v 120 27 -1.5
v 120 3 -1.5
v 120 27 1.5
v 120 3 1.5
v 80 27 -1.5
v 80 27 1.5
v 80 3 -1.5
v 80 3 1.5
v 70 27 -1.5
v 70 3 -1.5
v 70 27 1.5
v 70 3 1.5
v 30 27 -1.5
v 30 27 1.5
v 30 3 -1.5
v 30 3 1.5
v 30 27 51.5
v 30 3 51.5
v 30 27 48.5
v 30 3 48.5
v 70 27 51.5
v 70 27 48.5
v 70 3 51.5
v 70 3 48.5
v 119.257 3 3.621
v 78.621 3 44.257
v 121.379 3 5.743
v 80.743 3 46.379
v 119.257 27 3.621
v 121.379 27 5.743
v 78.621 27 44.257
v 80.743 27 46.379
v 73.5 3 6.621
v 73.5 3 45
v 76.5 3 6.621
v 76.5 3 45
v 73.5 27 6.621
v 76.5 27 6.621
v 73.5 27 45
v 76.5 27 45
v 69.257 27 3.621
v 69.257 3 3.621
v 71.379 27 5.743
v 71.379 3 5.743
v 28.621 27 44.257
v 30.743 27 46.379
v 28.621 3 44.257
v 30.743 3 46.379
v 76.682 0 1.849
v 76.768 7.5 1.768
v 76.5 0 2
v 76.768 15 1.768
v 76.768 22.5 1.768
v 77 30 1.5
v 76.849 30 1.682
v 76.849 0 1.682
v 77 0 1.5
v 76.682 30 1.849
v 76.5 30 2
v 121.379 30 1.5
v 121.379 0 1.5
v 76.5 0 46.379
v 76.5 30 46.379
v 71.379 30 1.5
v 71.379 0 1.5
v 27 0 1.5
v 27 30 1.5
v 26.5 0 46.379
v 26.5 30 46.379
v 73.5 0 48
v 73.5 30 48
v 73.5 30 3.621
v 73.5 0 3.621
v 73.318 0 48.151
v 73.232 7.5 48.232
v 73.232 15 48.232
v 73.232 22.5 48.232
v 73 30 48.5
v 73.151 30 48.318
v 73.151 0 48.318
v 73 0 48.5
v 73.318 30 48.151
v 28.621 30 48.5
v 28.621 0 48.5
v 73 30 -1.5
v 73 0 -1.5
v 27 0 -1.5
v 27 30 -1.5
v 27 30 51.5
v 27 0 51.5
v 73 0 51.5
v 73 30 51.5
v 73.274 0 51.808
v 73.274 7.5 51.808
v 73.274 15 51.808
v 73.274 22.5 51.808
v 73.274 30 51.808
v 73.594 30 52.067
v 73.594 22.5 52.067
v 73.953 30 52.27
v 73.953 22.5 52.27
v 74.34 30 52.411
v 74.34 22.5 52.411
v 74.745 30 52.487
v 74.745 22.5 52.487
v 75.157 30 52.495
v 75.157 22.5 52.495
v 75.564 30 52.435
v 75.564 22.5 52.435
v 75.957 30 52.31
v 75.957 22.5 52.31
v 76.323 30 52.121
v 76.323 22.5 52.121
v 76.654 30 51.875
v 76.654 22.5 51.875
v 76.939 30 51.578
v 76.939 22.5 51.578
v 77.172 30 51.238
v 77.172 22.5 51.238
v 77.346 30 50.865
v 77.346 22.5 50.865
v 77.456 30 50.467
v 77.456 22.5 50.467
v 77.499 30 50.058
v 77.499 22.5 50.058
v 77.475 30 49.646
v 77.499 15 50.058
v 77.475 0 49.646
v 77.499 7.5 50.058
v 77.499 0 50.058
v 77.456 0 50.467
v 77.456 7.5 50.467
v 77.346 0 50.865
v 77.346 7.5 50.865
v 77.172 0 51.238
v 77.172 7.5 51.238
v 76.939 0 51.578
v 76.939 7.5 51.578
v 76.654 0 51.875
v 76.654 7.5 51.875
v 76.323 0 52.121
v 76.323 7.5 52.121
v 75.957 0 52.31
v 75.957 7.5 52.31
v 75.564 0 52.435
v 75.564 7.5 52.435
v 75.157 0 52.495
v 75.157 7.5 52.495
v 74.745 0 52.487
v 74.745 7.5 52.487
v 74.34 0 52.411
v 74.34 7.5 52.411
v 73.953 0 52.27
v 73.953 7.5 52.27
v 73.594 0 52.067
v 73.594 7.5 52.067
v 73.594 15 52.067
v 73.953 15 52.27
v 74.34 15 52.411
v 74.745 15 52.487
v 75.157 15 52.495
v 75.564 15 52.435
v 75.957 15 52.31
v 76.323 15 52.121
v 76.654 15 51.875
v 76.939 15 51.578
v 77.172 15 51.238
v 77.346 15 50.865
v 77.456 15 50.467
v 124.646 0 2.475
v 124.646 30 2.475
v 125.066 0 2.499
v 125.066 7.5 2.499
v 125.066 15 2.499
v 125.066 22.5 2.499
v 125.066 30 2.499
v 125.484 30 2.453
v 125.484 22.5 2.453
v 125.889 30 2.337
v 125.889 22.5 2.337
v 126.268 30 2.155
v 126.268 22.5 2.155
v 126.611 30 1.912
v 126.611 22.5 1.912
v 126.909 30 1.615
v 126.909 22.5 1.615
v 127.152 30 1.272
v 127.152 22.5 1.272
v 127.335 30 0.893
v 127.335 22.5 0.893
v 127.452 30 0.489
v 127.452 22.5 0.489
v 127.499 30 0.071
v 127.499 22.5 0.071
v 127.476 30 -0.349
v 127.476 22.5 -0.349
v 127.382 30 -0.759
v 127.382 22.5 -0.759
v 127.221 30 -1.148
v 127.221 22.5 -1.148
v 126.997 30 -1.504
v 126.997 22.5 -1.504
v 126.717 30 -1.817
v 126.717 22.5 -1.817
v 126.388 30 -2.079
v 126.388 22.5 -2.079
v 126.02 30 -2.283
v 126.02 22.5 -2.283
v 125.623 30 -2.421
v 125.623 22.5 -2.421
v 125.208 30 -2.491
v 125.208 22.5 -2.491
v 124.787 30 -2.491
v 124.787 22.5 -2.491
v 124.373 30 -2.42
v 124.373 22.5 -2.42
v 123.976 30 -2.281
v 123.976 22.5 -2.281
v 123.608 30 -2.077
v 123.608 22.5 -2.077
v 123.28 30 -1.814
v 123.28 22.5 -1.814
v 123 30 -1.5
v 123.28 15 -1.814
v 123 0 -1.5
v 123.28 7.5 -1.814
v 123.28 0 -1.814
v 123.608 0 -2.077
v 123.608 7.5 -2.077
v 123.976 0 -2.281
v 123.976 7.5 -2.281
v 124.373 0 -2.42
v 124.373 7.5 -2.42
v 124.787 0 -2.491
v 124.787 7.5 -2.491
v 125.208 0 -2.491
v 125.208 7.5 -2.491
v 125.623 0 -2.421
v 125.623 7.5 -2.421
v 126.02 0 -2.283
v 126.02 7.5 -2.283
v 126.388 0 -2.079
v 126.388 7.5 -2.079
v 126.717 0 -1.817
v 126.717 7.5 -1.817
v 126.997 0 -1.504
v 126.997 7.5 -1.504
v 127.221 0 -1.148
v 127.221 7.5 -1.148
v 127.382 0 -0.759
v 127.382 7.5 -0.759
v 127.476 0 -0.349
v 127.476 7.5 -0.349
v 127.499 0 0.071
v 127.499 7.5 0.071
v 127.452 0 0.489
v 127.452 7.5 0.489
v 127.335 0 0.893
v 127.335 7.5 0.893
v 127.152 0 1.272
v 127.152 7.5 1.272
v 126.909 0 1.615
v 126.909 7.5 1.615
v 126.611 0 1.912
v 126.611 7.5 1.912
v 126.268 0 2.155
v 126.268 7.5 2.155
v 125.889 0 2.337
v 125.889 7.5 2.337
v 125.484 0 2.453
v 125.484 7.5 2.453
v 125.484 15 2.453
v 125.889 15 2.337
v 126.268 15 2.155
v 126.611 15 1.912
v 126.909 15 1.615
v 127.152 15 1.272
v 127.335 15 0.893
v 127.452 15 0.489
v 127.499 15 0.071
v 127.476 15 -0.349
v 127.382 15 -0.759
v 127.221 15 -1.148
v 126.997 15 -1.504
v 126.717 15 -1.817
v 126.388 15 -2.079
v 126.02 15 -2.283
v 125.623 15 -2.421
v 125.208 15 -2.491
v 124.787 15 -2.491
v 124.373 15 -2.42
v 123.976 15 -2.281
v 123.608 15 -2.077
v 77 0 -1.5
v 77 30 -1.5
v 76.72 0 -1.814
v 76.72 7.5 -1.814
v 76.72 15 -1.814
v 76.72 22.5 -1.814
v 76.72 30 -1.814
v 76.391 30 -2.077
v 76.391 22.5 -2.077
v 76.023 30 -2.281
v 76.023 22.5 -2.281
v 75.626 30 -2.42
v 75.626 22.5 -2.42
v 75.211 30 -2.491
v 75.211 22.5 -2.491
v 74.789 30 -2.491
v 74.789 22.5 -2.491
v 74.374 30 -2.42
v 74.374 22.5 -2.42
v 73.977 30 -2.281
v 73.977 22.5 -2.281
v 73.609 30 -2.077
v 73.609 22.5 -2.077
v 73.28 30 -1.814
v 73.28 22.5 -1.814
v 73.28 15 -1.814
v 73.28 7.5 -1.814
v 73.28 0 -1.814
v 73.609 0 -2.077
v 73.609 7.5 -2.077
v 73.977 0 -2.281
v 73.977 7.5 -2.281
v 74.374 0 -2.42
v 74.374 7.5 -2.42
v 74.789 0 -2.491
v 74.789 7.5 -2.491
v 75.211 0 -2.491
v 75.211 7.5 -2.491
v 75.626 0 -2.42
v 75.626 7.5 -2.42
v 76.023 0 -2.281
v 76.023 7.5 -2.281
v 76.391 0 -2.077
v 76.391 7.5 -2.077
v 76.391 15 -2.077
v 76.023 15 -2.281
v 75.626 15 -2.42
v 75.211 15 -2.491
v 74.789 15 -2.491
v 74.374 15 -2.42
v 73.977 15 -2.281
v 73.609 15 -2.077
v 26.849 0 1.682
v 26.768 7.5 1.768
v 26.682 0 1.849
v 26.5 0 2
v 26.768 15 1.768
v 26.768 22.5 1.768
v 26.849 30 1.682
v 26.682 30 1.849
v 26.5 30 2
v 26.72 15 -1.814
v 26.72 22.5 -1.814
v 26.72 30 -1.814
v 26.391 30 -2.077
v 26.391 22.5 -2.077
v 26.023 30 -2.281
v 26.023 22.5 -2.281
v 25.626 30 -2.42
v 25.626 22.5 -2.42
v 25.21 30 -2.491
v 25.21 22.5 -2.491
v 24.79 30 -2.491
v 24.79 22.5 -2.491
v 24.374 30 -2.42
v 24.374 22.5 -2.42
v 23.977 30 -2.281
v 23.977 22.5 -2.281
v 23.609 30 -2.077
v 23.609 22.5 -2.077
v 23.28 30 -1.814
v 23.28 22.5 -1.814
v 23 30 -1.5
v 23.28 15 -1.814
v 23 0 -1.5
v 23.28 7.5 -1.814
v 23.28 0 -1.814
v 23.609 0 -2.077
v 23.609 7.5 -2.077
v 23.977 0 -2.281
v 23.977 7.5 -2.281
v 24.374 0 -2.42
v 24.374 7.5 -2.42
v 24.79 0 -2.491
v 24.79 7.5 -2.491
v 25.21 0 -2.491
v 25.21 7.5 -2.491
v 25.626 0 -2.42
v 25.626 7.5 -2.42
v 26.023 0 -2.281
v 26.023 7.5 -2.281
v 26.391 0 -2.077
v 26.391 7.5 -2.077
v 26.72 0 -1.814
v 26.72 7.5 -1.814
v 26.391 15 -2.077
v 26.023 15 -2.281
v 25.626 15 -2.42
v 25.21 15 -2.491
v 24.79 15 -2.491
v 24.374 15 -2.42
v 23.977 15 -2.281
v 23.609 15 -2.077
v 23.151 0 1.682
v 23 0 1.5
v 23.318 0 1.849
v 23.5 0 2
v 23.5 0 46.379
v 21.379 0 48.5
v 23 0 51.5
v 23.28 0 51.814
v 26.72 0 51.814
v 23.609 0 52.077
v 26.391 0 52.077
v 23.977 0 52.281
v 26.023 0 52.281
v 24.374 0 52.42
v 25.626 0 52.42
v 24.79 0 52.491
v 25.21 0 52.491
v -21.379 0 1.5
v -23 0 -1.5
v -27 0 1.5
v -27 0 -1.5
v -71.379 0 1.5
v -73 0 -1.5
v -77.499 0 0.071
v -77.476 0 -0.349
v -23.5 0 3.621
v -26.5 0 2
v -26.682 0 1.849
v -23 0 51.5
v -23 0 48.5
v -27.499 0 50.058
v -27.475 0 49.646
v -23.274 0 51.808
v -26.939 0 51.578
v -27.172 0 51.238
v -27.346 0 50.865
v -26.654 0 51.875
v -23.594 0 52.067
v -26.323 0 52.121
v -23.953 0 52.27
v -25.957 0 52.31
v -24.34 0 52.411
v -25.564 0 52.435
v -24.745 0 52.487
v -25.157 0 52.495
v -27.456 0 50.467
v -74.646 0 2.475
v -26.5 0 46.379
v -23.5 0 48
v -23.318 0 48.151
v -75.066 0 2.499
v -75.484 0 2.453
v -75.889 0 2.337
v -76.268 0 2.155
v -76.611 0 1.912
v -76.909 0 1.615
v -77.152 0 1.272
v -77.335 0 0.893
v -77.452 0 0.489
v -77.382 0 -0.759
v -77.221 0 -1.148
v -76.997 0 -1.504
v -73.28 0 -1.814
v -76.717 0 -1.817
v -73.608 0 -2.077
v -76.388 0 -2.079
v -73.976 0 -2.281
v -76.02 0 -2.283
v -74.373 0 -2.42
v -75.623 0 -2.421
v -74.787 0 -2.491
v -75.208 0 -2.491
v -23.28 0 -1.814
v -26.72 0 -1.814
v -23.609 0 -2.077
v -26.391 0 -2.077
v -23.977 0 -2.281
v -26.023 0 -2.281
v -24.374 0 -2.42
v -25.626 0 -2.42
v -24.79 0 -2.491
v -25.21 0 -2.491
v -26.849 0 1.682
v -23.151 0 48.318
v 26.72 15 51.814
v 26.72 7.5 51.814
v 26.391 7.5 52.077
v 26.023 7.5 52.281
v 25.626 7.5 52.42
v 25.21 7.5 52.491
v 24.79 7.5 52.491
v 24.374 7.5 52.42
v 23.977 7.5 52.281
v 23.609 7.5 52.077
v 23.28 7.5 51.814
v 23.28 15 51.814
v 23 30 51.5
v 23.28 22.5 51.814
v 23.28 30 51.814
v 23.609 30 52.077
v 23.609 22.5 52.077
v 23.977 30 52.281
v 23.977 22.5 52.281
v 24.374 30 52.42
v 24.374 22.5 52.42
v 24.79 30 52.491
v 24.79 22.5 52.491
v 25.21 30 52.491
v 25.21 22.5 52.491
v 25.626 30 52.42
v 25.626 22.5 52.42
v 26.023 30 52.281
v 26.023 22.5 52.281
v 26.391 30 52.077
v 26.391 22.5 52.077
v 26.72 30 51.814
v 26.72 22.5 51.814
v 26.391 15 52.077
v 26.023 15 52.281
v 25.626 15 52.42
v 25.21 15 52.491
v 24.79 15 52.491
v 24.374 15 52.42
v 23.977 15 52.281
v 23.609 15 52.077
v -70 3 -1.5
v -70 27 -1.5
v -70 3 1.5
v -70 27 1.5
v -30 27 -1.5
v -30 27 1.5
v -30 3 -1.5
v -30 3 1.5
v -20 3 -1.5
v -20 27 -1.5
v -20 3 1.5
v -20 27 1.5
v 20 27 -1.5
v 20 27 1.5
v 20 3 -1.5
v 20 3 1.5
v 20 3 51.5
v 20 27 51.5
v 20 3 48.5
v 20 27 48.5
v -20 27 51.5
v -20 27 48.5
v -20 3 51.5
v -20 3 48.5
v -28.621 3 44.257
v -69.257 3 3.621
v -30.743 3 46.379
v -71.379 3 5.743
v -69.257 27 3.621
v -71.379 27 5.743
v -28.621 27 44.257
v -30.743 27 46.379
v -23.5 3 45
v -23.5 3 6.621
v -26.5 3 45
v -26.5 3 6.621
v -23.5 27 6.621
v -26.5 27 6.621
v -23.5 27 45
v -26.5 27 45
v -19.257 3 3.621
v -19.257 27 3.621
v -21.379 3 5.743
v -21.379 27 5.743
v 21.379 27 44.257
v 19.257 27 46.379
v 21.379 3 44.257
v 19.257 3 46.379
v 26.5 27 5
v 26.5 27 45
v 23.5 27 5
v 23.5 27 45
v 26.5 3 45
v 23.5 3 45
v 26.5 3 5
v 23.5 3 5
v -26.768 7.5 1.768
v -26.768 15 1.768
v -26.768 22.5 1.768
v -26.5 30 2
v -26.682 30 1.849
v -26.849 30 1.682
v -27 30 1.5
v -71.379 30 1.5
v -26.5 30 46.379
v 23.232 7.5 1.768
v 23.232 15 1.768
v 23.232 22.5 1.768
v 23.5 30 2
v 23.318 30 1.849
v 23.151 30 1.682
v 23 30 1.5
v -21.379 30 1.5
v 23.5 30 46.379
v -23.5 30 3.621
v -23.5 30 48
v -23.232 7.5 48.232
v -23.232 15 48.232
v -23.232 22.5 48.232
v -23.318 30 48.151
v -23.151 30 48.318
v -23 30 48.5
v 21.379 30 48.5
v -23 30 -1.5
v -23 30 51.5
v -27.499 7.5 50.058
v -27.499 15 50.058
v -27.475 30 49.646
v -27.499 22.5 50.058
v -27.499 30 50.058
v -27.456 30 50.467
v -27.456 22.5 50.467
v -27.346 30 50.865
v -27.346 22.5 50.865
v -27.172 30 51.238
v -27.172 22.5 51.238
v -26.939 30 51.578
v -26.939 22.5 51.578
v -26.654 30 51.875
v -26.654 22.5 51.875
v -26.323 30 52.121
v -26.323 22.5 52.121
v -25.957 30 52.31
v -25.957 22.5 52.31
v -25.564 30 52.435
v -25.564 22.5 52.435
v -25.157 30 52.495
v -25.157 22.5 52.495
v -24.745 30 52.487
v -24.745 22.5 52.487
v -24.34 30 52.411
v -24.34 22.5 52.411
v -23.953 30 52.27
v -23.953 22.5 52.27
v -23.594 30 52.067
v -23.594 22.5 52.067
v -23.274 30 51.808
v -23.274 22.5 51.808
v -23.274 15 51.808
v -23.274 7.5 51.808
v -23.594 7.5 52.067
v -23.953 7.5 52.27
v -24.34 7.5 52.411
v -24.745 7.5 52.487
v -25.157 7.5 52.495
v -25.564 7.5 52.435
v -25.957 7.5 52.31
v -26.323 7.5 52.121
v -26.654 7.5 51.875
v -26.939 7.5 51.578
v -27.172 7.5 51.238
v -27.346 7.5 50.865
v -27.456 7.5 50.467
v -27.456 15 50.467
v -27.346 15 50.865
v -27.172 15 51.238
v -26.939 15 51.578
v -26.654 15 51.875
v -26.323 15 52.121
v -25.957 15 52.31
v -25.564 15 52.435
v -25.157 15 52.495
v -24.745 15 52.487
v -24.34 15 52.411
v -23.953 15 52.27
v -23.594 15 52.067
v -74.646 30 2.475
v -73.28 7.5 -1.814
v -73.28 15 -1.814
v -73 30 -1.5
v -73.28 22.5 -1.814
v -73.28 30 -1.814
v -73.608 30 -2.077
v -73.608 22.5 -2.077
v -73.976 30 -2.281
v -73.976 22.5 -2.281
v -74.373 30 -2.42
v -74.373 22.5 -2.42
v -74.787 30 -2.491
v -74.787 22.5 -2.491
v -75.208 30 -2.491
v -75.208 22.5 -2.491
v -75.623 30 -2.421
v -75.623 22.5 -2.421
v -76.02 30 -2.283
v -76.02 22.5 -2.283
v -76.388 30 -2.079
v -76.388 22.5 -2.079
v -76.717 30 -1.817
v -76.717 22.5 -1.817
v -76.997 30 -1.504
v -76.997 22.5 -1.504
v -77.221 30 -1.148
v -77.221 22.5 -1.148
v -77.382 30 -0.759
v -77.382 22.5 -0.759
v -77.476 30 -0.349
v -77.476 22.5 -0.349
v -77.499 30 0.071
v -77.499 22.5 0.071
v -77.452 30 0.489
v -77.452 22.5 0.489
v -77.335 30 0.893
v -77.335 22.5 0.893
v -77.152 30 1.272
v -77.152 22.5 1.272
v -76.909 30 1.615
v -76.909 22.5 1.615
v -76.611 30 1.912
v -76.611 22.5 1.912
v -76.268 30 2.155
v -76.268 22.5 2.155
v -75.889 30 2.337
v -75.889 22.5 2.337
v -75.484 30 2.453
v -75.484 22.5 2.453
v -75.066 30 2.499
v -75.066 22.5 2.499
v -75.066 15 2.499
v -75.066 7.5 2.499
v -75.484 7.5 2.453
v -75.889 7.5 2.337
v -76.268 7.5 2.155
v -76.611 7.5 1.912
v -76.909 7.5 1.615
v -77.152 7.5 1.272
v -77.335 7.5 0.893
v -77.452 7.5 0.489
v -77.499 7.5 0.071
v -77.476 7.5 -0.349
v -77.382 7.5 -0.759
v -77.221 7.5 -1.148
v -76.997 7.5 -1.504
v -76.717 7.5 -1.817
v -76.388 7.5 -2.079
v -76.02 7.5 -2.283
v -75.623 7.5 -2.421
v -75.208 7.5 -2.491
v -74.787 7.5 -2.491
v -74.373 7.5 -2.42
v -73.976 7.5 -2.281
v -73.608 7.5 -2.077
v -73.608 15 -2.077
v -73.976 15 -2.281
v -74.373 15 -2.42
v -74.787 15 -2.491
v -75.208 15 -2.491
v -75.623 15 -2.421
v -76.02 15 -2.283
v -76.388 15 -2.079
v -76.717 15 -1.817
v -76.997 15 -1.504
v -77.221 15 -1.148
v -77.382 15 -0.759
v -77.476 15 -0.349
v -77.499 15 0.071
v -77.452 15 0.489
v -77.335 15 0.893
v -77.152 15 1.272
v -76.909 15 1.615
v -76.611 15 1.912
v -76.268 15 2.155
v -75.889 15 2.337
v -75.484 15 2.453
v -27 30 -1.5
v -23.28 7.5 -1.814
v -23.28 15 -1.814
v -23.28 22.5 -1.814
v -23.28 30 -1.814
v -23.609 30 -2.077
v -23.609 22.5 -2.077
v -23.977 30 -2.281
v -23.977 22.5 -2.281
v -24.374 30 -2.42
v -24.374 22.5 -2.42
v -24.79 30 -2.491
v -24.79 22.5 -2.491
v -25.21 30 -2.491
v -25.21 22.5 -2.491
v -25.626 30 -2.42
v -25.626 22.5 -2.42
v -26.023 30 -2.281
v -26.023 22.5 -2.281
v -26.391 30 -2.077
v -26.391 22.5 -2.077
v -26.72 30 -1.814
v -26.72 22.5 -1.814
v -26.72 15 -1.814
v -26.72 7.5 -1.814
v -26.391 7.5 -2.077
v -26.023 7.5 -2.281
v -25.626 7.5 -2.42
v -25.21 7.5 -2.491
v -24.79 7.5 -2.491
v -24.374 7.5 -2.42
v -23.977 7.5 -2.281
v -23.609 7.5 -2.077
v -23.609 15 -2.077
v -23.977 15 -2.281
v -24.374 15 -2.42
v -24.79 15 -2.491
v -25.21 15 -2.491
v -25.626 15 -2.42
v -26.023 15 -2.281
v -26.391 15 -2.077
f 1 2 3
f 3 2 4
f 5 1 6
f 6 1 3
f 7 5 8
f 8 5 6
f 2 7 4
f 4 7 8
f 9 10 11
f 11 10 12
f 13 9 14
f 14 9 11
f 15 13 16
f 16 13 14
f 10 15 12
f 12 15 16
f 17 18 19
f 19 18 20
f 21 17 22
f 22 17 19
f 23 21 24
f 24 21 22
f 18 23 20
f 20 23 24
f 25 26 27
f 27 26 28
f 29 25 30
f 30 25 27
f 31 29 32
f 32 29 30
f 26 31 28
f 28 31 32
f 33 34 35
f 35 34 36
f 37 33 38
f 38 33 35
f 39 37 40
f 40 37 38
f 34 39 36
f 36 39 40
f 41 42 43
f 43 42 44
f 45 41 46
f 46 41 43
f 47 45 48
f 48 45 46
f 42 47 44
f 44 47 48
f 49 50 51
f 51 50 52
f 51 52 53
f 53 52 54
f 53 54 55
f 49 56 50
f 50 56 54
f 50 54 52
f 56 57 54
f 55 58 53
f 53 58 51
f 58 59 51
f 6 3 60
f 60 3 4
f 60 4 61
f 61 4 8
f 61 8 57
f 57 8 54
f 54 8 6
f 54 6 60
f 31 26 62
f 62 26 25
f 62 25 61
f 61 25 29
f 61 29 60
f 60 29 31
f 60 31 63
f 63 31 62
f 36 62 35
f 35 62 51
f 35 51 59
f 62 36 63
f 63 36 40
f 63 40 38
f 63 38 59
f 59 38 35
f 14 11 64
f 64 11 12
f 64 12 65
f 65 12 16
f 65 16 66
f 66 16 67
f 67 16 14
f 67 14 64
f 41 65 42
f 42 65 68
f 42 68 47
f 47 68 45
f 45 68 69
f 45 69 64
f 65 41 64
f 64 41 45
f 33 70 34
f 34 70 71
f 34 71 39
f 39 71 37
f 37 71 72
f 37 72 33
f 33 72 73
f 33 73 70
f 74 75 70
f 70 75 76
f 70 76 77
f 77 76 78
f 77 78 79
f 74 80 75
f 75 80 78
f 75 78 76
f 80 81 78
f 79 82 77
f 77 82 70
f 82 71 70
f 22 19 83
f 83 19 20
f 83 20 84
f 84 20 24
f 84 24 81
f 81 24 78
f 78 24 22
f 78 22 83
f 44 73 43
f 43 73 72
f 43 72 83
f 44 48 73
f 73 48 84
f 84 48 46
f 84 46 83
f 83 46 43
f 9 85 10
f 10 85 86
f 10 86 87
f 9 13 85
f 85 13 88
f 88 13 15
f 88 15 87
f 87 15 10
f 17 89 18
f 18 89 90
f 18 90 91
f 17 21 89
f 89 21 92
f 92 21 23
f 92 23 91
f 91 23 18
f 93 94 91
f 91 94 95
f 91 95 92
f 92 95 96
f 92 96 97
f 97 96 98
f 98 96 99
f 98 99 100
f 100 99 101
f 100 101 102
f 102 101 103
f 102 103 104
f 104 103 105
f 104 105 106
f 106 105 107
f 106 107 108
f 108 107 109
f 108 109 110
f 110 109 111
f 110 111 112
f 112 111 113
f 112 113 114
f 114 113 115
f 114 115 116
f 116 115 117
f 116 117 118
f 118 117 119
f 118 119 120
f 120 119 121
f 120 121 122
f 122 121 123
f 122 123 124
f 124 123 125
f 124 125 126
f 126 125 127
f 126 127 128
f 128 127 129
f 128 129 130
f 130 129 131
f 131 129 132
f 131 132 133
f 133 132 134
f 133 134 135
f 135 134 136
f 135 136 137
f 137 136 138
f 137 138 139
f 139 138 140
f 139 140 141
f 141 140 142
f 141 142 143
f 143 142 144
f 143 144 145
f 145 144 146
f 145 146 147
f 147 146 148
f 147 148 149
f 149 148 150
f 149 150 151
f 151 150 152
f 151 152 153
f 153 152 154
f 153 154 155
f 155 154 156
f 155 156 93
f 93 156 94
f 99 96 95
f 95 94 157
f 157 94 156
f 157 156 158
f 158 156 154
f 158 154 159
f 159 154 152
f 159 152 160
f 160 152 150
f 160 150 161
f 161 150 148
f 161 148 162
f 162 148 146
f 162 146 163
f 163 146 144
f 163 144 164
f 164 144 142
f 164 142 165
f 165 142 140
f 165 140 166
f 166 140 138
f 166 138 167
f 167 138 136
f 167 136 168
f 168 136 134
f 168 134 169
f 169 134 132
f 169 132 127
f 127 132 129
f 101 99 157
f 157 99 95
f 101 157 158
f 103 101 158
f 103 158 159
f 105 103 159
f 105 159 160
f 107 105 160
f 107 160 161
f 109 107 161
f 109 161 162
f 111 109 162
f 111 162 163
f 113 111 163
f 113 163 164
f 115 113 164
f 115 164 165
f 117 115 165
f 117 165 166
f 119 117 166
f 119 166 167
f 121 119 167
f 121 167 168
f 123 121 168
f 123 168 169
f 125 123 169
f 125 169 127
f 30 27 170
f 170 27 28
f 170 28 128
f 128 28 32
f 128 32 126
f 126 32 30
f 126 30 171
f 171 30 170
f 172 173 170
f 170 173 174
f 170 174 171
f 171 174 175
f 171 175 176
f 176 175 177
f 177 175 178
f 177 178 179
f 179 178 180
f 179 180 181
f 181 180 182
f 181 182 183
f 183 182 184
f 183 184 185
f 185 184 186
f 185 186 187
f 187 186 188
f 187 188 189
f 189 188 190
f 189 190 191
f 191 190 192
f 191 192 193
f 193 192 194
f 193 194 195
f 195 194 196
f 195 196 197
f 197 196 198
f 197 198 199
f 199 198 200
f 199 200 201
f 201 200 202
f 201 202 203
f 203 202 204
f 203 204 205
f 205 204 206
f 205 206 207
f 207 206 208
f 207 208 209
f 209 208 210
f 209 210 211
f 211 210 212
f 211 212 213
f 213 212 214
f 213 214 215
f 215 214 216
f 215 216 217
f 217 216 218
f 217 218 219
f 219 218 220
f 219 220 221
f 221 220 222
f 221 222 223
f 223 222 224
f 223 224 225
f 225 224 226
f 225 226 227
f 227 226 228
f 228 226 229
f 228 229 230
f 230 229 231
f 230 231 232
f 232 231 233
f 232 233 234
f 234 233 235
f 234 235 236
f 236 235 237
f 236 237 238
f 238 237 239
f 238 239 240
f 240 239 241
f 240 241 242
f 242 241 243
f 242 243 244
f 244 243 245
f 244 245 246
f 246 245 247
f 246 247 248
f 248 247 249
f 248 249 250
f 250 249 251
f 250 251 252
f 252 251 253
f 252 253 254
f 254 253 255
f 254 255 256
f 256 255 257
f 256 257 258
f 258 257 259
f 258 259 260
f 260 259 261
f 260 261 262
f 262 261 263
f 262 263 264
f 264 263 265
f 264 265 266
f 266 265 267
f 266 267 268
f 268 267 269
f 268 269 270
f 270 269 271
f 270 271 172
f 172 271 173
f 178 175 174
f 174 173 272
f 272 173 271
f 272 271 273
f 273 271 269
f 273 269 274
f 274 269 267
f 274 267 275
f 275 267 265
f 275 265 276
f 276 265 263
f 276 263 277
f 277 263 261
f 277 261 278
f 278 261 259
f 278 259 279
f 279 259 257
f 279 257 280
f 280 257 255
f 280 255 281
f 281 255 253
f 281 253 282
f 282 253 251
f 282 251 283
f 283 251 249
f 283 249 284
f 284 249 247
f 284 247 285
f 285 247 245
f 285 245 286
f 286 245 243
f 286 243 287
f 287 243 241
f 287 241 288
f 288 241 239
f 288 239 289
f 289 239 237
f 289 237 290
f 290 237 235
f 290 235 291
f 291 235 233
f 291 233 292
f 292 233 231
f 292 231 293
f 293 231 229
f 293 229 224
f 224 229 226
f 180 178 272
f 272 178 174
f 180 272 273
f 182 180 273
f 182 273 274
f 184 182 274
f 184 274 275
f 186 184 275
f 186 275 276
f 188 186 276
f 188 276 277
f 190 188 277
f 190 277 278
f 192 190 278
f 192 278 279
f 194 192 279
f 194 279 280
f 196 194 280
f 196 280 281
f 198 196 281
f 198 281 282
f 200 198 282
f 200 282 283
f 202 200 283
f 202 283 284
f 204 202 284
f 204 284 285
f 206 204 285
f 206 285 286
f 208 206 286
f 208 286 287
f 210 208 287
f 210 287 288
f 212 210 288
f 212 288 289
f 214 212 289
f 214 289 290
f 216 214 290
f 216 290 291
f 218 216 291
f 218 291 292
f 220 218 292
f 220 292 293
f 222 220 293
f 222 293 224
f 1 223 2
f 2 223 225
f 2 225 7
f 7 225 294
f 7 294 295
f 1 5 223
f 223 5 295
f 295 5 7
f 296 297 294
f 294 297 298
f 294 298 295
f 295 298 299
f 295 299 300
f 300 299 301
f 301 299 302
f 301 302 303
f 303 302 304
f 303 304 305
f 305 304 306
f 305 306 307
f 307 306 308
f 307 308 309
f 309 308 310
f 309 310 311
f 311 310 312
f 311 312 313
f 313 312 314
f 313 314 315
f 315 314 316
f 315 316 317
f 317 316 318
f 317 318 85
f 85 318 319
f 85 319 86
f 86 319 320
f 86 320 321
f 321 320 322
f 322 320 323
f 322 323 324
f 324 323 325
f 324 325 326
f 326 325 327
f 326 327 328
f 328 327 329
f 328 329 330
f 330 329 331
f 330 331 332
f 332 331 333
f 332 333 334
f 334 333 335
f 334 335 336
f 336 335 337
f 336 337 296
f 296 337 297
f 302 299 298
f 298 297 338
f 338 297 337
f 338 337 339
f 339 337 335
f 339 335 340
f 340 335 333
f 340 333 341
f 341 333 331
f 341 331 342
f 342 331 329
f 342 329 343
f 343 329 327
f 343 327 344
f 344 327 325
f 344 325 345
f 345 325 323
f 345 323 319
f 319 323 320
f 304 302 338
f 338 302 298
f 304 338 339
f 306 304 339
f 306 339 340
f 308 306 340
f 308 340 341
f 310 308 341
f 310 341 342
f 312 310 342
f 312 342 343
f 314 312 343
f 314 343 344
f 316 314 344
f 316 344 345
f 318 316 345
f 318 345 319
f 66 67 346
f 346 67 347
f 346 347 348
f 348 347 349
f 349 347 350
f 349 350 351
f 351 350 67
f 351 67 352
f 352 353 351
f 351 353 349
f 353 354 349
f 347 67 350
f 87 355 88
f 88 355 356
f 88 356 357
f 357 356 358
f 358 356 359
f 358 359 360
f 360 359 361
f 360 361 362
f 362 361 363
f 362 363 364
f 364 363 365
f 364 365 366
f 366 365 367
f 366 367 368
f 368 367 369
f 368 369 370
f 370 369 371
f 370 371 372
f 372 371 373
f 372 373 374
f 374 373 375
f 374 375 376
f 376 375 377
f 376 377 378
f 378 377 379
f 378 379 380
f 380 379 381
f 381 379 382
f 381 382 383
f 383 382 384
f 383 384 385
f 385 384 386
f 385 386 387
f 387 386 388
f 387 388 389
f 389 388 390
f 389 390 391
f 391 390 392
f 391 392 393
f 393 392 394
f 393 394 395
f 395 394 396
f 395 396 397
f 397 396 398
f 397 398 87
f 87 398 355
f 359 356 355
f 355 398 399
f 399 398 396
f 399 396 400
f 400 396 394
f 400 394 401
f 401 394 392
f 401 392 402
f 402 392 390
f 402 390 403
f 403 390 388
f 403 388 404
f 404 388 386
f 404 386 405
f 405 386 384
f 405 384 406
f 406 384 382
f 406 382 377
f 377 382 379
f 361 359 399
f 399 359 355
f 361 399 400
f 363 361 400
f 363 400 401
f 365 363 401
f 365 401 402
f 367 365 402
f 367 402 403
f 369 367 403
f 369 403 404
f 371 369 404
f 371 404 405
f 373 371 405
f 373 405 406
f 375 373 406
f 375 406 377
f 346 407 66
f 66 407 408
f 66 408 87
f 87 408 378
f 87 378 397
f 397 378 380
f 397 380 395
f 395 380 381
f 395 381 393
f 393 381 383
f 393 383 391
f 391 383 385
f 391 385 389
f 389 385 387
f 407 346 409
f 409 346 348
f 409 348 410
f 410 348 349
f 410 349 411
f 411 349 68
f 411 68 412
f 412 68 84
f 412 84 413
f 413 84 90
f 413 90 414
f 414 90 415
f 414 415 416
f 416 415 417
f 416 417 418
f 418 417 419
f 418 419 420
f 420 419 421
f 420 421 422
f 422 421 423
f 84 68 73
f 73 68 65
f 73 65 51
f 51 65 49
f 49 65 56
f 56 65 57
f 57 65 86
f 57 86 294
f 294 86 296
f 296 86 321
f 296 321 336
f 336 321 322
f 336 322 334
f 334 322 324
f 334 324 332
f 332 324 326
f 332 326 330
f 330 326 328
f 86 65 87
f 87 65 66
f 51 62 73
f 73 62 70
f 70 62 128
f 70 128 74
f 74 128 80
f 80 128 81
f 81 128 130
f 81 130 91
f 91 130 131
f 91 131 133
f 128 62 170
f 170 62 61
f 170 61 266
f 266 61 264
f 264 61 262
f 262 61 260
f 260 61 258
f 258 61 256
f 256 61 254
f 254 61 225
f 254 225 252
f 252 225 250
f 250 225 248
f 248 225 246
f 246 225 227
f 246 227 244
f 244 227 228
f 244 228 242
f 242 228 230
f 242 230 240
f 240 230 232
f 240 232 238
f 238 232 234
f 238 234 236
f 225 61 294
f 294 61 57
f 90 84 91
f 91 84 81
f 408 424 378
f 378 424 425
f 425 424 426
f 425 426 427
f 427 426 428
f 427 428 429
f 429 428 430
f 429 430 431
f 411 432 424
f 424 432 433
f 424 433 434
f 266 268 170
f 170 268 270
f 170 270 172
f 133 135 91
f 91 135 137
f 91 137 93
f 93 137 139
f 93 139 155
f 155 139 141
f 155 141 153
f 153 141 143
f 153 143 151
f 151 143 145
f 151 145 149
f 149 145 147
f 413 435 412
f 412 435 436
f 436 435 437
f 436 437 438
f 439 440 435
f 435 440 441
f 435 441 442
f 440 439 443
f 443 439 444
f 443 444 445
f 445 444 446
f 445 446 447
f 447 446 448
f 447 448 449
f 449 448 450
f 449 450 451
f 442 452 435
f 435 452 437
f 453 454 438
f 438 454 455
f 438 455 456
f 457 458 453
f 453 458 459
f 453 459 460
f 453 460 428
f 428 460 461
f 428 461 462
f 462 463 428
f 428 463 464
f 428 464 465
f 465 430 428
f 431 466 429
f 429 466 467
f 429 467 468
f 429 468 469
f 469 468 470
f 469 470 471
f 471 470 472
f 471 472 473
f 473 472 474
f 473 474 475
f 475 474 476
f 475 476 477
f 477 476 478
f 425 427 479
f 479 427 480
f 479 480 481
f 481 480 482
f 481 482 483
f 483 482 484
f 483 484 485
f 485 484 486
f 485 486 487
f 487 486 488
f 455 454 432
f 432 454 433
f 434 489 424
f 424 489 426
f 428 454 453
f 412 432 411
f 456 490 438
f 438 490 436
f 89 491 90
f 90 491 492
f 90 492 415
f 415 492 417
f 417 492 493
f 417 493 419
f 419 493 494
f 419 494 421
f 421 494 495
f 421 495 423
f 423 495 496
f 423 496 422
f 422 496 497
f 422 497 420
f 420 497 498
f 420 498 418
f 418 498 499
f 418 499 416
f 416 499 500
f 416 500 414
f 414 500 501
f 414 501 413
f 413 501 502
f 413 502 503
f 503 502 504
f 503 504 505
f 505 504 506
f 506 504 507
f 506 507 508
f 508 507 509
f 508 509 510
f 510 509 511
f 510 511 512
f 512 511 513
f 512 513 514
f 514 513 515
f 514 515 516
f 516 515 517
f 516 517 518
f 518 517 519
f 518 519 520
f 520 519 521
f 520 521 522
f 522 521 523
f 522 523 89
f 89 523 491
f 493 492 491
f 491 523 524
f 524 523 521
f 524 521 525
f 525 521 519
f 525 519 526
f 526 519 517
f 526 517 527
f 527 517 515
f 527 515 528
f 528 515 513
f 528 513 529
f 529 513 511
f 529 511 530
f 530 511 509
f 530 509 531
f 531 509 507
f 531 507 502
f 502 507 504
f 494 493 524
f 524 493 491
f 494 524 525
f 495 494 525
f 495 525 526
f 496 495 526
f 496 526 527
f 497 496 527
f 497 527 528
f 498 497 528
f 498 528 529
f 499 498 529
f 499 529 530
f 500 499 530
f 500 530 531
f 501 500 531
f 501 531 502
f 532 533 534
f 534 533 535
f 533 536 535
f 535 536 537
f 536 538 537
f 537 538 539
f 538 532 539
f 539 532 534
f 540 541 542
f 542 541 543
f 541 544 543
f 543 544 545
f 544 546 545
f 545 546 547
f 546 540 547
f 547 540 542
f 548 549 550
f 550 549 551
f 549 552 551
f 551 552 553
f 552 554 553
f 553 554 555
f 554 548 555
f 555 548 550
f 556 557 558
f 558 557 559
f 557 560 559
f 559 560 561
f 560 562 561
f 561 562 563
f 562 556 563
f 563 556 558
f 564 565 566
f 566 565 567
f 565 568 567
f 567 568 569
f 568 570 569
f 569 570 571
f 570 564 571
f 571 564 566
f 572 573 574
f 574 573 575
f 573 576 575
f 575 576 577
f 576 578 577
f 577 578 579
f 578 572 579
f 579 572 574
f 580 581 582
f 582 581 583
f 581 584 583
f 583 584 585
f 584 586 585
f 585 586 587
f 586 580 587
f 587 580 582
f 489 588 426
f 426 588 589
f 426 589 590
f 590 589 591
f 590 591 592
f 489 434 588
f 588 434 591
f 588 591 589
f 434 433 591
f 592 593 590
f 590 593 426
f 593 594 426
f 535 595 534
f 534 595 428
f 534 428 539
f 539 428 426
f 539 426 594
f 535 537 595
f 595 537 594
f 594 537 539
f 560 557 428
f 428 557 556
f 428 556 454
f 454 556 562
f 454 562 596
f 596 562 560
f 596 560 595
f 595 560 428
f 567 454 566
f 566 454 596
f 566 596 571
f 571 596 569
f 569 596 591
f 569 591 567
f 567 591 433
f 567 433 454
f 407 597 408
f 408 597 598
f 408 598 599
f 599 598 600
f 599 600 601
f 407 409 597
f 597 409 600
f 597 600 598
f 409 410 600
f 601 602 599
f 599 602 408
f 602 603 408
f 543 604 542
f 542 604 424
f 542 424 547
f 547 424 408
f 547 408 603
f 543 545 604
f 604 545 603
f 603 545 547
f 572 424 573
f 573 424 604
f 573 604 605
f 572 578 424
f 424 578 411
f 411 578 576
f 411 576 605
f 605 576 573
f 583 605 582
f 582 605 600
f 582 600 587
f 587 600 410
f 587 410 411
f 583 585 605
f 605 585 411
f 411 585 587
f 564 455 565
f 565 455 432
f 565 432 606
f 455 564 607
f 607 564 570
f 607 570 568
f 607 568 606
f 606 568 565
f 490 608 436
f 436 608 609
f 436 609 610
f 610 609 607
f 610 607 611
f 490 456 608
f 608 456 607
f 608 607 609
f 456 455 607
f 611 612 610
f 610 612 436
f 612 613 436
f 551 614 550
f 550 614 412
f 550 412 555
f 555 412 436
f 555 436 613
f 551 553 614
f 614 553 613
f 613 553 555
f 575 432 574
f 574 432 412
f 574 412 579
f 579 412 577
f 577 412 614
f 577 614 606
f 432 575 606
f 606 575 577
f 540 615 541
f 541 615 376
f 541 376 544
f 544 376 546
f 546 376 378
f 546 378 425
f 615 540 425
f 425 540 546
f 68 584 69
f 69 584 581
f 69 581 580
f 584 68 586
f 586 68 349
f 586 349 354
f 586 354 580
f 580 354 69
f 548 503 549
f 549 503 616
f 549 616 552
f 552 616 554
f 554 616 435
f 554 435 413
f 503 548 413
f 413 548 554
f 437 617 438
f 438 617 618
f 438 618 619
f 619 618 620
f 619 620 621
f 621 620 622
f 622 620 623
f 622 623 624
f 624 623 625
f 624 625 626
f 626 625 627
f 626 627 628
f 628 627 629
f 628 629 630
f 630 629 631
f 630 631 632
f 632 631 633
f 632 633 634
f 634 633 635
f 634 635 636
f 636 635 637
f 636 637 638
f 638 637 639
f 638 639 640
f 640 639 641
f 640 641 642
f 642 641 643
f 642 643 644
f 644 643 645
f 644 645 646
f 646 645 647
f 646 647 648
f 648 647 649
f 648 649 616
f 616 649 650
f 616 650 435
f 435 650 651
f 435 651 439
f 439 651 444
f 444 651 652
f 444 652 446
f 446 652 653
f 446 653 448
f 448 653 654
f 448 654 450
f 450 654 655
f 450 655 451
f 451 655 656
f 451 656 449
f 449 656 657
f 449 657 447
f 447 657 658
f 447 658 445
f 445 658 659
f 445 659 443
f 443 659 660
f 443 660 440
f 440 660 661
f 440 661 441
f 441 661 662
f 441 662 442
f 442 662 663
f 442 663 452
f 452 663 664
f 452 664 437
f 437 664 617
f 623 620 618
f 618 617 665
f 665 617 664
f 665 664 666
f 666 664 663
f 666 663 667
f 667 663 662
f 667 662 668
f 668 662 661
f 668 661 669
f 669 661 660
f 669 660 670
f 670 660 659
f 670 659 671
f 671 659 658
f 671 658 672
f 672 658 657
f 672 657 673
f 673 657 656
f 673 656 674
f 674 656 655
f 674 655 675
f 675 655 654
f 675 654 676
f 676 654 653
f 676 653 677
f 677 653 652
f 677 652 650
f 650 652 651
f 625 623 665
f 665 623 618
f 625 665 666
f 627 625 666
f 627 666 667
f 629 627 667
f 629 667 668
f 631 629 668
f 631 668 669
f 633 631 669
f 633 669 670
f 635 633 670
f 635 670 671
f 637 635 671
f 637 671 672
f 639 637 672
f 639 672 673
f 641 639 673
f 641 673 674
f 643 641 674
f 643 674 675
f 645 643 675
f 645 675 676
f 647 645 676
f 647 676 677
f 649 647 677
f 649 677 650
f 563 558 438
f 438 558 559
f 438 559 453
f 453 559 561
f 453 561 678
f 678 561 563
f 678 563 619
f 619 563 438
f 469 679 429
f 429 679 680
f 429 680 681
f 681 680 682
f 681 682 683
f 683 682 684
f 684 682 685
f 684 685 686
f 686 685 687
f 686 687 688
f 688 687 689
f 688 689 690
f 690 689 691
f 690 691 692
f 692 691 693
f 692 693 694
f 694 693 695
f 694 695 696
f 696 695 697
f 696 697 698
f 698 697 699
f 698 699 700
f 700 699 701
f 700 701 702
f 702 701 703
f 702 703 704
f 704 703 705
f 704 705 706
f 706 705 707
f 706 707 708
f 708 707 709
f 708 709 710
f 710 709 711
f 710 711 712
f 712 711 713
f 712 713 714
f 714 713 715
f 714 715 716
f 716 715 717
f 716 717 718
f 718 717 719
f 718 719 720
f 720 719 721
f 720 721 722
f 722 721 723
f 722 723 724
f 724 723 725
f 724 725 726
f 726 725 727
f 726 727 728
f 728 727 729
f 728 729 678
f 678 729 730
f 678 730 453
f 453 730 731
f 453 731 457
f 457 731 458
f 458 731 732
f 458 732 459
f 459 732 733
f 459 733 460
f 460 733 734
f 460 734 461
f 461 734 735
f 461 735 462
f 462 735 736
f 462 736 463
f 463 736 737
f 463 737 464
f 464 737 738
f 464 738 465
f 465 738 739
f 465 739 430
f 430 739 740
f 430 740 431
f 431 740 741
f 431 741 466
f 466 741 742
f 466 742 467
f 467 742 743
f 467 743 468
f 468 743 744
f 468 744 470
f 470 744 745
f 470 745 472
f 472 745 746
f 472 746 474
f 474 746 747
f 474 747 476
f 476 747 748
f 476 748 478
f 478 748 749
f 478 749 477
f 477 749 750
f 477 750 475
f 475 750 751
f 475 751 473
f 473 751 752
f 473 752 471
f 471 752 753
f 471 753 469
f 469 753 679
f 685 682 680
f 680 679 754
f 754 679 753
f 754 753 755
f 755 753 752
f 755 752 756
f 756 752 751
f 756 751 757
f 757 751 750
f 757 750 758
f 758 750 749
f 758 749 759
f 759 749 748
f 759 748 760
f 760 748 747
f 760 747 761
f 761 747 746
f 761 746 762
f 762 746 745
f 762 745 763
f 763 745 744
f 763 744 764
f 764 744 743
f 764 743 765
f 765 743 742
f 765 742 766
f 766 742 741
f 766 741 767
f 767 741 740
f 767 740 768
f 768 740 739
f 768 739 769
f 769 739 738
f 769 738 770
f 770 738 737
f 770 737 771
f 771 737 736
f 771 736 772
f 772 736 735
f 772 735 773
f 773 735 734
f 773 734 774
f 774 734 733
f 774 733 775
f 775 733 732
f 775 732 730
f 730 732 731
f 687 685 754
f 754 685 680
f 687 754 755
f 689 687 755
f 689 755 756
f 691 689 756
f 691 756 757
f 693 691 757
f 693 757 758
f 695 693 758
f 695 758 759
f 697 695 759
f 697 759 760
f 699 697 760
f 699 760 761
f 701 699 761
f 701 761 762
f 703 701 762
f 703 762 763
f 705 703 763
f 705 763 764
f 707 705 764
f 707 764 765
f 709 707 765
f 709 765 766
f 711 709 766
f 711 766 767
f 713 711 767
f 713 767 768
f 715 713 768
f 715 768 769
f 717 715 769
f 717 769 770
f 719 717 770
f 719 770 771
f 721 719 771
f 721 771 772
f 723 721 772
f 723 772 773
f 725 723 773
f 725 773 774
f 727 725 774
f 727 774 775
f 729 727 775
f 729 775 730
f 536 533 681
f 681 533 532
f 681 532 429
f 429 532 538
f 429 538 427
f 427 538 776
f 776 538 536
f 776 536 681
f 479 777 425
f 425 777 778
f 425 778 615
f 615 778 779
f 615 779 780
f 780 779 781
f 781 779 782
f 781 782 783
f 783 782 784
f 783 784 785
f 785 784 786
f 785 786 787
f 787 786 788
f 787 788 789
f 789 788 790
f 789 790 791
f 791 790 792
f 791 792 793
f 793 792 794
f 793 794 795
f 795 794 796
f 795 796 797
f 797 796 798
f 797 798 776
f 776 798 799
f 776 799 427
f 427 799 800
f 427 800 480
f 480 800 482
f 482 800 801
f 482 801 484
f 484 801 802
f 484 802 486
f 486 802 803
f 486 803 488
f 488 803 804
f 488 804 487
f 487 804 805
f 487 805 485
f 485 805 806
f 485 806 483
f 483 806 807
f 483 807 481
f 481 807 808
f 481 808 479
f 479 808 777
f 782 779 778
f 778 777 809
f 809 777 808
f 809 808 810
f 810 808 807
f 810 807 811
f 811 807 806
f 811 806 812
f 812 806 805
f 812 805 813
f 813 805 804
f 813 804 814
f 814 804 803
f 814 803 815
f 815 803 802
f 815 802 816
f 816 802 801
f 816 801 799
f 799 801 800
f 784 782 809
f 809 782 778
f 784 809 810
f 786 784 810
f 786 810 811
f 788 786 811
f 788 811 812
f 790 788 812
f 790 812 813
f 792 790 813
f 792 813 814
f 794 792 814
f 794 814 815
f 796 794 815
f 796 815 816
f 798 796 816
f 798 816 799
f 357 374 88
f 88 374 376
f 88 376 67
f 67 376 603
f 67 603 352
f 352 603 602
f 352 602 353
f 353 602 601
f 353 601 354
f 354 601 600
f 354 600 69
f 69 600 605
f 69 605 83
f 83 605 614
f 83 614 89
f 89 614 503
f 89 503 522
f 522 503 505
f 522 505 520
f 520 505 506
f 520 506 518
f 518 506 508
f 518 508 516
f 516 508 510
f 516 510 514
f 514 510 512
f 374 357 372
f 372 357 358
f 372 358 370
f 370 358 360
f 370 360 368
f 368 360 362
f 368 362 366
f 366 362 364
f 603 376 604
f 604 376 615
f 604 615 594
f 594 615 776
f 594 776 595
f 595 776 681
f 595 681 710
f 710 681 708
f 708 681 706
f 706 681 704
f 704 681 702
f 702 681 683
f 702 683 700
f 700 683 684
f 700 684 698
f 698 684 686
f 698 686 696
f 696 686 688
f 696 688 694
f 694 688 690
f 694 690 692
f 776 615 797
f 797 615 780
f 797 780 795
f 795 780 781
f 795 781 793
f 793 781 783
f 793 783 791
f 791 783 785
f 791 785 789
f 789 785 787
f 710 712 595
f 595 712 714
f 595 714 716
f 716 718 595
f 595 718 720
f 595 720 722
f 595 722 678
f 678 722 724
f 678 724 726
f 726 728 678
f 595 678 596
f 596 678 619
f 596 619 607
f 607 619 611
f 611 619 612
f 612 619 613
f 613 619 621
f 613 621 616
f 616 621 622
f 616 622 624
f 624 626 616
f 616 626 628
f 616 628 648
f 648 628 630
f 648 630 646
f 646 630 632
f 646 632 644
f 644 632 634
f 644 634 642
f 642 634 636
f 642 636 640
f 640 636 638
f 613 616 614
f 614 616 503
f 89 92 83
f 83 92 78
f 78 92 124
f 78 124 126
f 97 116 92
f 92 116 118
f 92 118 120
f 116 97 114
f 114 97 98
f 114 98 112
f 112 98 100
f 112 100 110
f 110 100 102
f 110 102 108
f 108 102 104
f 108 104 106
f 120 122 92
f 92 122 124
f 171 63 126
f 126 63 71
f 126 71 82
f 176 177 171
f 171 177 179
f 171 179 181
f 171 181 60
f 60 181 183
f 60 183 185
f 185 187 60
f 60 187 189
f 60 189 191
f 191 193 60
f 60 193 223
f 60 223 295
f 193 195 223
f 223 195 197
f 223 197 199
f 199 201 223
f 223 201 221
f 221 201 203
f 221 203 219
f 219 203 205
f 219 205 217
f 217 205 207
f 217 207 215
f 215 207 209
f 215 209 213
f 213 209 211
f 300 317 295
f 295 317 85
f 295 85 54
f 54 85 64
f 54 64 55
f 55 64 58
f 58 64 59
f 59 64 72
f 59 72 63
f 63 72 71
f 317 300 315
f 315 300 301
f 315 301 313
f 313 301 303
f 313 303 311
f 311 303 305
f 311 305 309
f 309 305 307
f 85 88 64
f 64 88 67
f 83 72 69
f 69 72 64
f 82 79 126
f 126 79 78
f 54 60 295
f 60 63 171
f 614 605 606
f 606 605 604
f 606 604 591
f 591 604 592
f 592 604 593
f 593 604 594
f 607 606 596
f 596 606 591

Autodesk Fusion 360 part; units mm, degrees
sketch "Sketch1" plane through (0, 0, 0) normal (0, 1, 0) x (1, 0, 0)
  circle A0 centre (-75, 0) radius 2.5
  line L0 (-75, 0) -> (25, 0) construction
  circle A1 centre (25, 0) radius 2.5
  line L1 (25, 0) -> (25, -50) construction
  line L2 (25, -50) -> (-25, -50) construction
  line L3 (-25, -50) -> (-75, 0) construction
  line L4 (25, -50) -> (-25, 0) construction
  line L5 (-25, -50) -> (-25, 0) construction
  circle A2 centre (-25, -50) radius 2.5
  circle A3 centre (25, -50) radius 2.5
  circle A4 centre (-25, 0) radius 2.5
  line L6 (-23.9393, -48.9393) -> (-73.9393, 1.0607)
  line L7 (-26.0607, -51.0607) -> (-76.0607, -1.0607)
  line L8 (25, -48.5) -> (-25, -48.5)
  line L9 (25, -51.5) -> (-25, -51.5)
  line L10 (23.5, 0) -> (23.5, -50)
  line L11 (26.5, 0) -> (26.5, -50)
  line L12 (23.9393, -51.0607) -> (-26.0607, -1.0607)
  line L13 (26.0607, -48.9393) -> (-23.9393, 1.0607)
  line L14 (-75, -1.5) -> (25, -1.5)
  line L15 (-75, 1.5) -> (25, 1.5)
  line L16 (-23.5, -50) -> (-23.5, 0)
  line L17 (-26.5, -50) -> (-26.5, 0)
  dimension "d1" = 5
  dimension "d2" = 5
  dimension "d3" = 5
  dimension "d4" = 5
  dimension "d5" = 5
  dimension "d6" = 1.5
  dimension "d7" = -1.5
  dimension "d8" = 1.5
  dimension "d9" = -1.5
  dimension "d10" = 1.5
  dimension "d11" = -1.5
  dimension "d12" = -1.5
  dimension "d13" = 1.5
  dimension "d14" = 1.5
  dimension "d15" = -1.5
  dimension "d16" = 1.5
  dimension "d17" = -1.5
extrude "Extrude1" add sketch "Sketch1" along normal blind 30 contours A0 | A0 A4 L6 L14 L15 | A0 L6 L14 | A0 A2 L6 L7 L14 L17 | A4 L14 L15 | A4 L15 | A2 L6 L8 | A1 A4 L13 L14 L15 | A4 L14 L17 | A2 A4 L6 L12 L16 L17 | A2 L6 L17 | A2 A3 L8 L9 L12 | A1 L10 L14 | A4 L12 L14 L17 | A2 L6 L8 L16 | A3 L8 L10 | A4 L13 L14 | A1 L10 L14 | A4 L12 L14 L16 | A4 L12 L16 | A2 L8 L16 | A3 L8 L12 | A3 A4 L8 L10 L12 L13 L14 L16 | A4 L14 L16 | A1 A3 L10 L11 L13 | A3 L8 L10 | A3 L10 L13
sketch "Sketch2" plane through (26.5, 0, 0) normal (1, 0, 0) x (0, 1, 0)
  line L0 (0, 48) -> (0, 2)
  line L1 (0, 2) -> (30, 2)
  line L2 (30, 2) -> (30, 48)
  line L3 (30, 48) -> (0, 48)
  line L4 (3, 45) -> (27, 45)
  line L5 (27, 45) -> (27, 5)
  line L6 (27, 5) -> (3, 5)
  line L7 (3, 5) -> (3, 45)
  dimension "d20" = 3
  dimension "d21" = 3
  dimension "d22" = 3
  dimension "d23" = 3
extrude "Extrude2" cut sketch "Sketch2" against normal blind 3 contours L4 L5 L6 L7
sketch "Sketch3" plane through (-11.4393, 0, 11.4393) normal (0.7071, 0, -0.7071) x (0, 1, 0)
  line L0 (0, 49.4117) -> (0, -14.0563)
  line L1 (0, -14.0563) -> (30, -14.0563)
  line L2 (30, -14.0563) -> (30, 49.4117)
  line L3 (30, 49.4117) -> (0, 49.4117)
  line L4 (3, 46.4117) -> (27, 46.4117)
  line L5 (27, 46.4117) -> (27, -11.0563)
  line L6 (3, -11.0563) -> (3, 46.4117)
  line L7 (3, -11.0563) -> (27, -11.0563)
  dimension "d27" = 3
  dimension "d28" = 3
  dimension "d29" = 3
  dimension "d31" = 3
extrude "Extrude3" cut sketch "Sketch3" against normal blind 3 contours L4 L5 L6 L7
sketch "Sketch4" plane through (-23.5, 0, 0) normal (1, 0, 0) x (0, 1, 0)
  line L0 (0, 48) -> (0, 3.6213)
  line L1 (0, 3.6213) -> (30, 3.6213)
  line L2 (30, 3.6213) -> (30, 48)
  line L3 (30, 48) -> (0, 48)
  line L4 (3, 45) -> (3, 6.6213)
  line L5 (3, 6.6213) -> (27, 6.6213)
  line L6 (27, 6.6213) -> (27, 45)
  line L7 (27, 45) -> (3, 45)
  dimension "d34" = 3
  dimension "d35" = 3
  dimension "d36" = 3
  dimension "d37" = 3
extrude "Extrude4" cut sketch "Sketch4" against normal blind 3 contours L4 L5 L6 L7
sketch "Sketch5" plane through (-36.4393, 0, 36.4393) normal (0.7071, 0, -0.7071) x (0, 1, 0)
  line L0 (0, 14.0563) -> (0, -49.4117)
  line L1 (0, -49.4117) -> (30, -49.4117)
  line L2 (30, -49.4117) -> (30, 14.0563)
  line L3 (30, 14.0563) -> (0, 14.0563)
  line L4 (3, 11.0563) -> (27, 11.0563)
  line L5 (27, 11.0563) -> (27, -46.4117)
  line L6 (3, -46.4117) -> (27, -46.4117)
  line L7 (3, 11.0563) -> (3, -46.4117)
  dimension "d41" = 3
  dimension "d42" = 3
  dimension "d43" = 3
  dimension "d44" = 3
extrude "Extrude5" cut sketch "Sketch5" against normal blind 3 contours L4 L5 L6 L7
ref_plane "WorkPlane1" through (25, 15, 24.1893) normal (-1, 0, 0) x (0, 0, 1)
sketch "Sketch6" plane through (0, 0, 51.5) normal (0, 0, 1) x (-1, 0, 0)
  line L0 (23, 0) -> (-23, 0)
  line L1 (-23, 0) -> (-23, -30)
  line L2 (-23, -30) -> (23, -30)
  line L3 (23, -30) -> (23, 0)
  line L4 (20, -27) -> (-20, -27)
  line L5 (-20, -27) -> (-20, -3)
  line L6 (-20, -3) -> (20, -3)
  line L7 (20, -3) -> (20, -27)
  dimension "d47" = 3
  dimension "d48" = 3
  dimension "d49" = 3
  dimension "d50" = 3
extrude "Extrude6" cut sketch "Sketch6" against normal blind 3 contours L4 L5 L6 L7
sketch "Sketch7" plane through (0, 0, -1.5) normal (0, 0, -1) x (1, 0, 0)
  line L0 (23, 0) -> (-23, 0)
  line L1 (-23, 0) -> (-23, -30)
  line L2 (-23, -30) -> (23, -30)
  line L3 (23, -30) -> (23, 0)
  line L4 (20, -27) -> (-20, -27)
  line L5 (-20, -27) -> (-20, -3)
  line L6 (-20, -3) -> (20, -3)
  line L7 (20, -3) -> (20, -27)
  dimension "d53" = 3
  dimension "d54" = 3
  dimension "d55" = 3
  dimension "d56" = 3
extrude "Extrude7" cut sketch "Sketch7" against normal blind 3 contours L4 L5 L6 L7
sketch "Sketch8" plane through (0, 0, -1.5) normal (0, 0, -1) x (1, 0, 0)
  line L0 (-27, 0) -> (-73, 0)
  line L1 (-73, 0) -> (-73, -30)
  line L2 (-73, -30) -> (-27, -30)
  line L3 (-27, -30) -> (-27, 0)
  line L4 (-30, -27) -> (-70, -27)
  line L5 (-70, -27) -> (-70, -3)
  line L6 (-70, -3) -> (-30, -3)
  line L7 (-30, -3) -> (-30, -27)
  dimension "d59" = 3
  dimension "d60" = 3
  dimension "d61" = 3
  dimension "d62" = 3
extrude "Extrude8" cut sketch "Sketch8" against normal blind 3 contours L4 L5 L6 L7
mirror "Mirror1" about plane through (25, 15, 24.1893) normal (-1, 0, 0) of bodies 1 merged
